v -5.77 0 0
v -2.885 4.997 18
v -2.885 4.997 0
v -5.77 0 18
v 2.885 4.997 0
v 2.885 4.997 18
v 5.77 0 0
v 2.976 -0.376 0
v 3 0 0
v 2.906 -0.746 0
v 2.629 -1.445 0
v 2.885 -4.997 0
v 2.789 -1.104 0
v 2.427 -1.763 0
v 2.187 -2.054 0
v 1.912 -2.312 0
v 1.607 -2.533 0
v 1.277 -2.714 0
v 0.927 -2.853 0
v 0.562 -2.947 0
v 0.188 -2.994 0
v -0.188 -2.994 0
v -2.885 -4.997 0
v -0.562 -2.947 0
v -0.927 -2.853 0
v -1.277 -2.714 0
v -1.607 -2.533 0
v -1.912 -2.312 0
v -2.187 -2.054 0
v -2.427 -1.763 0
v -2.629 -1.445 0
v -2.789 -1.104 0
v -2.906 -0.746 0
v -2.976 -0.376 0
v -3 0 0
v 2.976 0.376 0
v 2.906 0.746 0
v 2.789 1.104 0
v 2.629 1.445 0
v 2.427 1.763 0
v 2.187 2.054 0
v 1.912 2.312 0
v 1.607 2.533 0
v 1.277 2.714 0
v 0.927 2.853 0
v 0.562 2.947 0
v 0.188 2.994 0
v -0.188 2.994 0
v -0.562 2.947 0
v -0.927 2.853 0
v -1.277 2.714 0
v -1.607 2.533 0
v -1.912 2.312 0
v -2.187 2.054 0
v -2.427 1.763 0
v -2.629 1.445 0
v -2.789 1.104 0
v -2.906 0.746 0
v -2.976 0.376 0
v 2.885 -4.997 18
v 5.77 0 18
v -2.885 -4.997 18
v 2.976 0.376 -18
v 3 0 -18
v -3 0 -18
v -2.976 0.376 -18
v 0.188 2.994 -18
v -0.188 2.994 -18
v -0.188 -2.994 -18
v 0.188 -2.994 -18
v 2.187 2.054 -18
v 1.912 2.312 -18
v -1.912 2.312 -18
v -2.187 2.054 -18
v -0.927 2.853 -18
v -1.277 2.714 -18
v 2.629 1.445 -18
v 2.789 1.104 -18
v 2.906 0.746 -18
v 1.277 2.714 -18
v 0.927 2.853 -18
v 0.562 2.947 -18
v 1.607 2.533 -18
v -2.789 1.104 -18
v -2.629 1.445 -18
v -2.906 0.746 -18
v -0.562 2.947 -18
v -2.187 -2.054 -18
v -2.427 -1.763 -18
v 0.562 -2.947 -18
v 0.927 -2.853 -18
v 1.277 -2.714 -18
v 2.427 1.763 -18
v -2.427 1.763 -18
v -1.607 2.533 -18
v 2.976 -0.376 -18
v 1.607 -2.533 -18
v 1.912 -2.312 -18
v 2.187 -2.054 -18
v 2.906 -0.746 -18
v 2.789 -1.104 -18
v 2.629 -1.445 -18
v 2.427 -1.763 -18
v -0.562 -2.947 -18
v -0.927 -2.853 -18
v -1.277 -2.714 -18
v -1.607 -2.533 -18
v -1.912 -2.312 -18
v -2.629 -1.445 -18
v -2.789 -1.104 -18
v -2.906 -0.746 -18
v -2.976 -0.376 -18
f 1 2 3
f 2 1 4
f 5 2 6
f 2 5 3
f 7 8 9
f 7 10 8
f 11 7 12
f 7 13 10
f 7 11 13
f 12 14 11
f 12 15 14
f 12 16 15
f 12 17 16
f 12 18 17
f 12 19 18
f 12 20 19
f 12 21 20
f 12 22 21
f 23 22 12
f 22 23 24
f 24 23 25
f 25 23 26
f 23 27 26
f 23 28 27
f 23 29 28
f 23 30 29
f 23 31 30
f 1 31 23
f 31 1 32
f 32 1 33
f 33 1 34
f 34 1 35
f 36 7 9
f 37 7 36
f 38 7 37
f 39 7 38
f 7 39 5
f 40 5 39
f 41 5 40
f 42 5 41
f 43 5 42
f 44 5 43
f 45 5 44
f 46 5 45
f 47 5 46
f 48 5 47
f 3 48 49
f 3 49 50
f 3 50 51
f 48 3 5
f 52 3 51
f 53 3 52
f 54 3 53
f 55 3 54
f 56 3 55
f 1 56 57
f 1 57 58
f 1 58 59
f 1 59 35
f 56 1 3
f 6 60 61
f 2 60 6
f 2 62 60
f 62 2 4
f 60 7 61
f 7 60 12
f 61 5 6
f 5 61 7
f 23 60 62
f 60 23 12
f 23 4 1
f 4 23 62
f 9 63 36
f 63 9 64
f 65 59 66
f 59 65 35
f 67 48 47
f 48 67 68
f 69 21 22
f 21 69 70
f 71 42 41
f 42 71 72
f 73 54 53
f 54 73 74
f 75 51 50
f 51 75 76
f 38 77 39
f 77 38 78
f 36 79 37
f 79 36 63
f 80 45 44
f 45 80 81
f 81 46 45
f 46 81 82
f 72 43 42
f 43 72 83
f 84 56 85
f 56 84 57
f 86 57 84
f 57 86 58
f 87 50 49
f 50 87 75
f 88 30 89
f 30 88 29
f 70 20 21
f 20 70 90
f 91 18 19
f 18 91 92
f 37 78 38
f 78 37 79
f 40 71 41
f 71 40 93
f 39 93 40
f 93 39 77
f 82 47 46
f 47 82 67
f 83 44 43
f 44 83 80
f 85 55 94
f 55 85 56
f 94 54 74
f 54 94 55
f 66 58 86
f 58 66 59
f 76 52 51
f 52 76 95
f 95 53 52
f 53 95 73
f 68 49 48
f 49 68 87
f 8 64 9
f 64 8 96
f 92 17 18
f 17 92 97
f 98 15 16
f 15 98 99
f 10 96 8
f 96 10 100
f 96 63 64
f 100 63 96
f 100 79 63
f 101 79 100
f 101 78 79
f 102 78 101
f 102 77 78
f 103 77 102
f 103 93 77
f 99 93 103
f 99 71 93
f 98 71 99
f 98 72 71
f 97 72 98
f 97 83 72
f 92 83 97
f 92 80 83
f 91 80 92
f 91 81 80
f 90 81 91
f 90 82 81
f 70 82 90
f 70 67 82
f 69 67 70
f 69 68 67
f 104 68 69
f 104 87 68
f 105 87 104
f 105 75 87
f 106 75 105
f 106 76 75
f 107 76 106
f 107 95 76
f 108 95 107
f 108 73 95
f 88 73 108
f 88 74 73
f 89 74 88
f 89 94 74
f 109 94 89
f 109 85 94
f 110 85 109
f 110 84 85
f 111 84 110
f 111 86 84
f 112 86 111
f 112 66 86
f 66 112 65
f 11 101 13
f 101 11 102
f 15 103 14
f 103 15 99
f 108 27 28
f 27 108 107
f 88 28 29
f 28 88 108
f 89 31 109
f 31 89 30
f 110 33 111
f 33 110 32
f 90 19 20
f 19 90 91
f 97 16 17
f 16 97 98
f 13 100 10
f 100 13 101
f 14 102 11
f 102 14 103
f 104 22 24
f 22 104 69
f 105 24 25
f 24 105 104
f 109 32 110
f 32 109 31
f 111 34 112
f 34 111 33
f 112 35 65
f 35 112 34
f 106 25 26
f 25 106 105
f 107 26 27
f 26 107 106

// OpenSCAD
$fn = 50;


difference() {
	union() {
		linear_extrude(height = 18) {
			polygon(points = [[5.7700000000, 0.0000000000], [2.8850000000, 4.9969665798], [-2.8850000000, 4.9969665798], [-5.7700000000, 0.0000000000], [-2.8850000000, -4.9969665798], [2.8850000000, -4.9969665798]]);
		}
		translate(v = [0, 0, -18]) {
			cylinder(h = 18, r = 3.0000000000);
		}
	}
	union();
}
